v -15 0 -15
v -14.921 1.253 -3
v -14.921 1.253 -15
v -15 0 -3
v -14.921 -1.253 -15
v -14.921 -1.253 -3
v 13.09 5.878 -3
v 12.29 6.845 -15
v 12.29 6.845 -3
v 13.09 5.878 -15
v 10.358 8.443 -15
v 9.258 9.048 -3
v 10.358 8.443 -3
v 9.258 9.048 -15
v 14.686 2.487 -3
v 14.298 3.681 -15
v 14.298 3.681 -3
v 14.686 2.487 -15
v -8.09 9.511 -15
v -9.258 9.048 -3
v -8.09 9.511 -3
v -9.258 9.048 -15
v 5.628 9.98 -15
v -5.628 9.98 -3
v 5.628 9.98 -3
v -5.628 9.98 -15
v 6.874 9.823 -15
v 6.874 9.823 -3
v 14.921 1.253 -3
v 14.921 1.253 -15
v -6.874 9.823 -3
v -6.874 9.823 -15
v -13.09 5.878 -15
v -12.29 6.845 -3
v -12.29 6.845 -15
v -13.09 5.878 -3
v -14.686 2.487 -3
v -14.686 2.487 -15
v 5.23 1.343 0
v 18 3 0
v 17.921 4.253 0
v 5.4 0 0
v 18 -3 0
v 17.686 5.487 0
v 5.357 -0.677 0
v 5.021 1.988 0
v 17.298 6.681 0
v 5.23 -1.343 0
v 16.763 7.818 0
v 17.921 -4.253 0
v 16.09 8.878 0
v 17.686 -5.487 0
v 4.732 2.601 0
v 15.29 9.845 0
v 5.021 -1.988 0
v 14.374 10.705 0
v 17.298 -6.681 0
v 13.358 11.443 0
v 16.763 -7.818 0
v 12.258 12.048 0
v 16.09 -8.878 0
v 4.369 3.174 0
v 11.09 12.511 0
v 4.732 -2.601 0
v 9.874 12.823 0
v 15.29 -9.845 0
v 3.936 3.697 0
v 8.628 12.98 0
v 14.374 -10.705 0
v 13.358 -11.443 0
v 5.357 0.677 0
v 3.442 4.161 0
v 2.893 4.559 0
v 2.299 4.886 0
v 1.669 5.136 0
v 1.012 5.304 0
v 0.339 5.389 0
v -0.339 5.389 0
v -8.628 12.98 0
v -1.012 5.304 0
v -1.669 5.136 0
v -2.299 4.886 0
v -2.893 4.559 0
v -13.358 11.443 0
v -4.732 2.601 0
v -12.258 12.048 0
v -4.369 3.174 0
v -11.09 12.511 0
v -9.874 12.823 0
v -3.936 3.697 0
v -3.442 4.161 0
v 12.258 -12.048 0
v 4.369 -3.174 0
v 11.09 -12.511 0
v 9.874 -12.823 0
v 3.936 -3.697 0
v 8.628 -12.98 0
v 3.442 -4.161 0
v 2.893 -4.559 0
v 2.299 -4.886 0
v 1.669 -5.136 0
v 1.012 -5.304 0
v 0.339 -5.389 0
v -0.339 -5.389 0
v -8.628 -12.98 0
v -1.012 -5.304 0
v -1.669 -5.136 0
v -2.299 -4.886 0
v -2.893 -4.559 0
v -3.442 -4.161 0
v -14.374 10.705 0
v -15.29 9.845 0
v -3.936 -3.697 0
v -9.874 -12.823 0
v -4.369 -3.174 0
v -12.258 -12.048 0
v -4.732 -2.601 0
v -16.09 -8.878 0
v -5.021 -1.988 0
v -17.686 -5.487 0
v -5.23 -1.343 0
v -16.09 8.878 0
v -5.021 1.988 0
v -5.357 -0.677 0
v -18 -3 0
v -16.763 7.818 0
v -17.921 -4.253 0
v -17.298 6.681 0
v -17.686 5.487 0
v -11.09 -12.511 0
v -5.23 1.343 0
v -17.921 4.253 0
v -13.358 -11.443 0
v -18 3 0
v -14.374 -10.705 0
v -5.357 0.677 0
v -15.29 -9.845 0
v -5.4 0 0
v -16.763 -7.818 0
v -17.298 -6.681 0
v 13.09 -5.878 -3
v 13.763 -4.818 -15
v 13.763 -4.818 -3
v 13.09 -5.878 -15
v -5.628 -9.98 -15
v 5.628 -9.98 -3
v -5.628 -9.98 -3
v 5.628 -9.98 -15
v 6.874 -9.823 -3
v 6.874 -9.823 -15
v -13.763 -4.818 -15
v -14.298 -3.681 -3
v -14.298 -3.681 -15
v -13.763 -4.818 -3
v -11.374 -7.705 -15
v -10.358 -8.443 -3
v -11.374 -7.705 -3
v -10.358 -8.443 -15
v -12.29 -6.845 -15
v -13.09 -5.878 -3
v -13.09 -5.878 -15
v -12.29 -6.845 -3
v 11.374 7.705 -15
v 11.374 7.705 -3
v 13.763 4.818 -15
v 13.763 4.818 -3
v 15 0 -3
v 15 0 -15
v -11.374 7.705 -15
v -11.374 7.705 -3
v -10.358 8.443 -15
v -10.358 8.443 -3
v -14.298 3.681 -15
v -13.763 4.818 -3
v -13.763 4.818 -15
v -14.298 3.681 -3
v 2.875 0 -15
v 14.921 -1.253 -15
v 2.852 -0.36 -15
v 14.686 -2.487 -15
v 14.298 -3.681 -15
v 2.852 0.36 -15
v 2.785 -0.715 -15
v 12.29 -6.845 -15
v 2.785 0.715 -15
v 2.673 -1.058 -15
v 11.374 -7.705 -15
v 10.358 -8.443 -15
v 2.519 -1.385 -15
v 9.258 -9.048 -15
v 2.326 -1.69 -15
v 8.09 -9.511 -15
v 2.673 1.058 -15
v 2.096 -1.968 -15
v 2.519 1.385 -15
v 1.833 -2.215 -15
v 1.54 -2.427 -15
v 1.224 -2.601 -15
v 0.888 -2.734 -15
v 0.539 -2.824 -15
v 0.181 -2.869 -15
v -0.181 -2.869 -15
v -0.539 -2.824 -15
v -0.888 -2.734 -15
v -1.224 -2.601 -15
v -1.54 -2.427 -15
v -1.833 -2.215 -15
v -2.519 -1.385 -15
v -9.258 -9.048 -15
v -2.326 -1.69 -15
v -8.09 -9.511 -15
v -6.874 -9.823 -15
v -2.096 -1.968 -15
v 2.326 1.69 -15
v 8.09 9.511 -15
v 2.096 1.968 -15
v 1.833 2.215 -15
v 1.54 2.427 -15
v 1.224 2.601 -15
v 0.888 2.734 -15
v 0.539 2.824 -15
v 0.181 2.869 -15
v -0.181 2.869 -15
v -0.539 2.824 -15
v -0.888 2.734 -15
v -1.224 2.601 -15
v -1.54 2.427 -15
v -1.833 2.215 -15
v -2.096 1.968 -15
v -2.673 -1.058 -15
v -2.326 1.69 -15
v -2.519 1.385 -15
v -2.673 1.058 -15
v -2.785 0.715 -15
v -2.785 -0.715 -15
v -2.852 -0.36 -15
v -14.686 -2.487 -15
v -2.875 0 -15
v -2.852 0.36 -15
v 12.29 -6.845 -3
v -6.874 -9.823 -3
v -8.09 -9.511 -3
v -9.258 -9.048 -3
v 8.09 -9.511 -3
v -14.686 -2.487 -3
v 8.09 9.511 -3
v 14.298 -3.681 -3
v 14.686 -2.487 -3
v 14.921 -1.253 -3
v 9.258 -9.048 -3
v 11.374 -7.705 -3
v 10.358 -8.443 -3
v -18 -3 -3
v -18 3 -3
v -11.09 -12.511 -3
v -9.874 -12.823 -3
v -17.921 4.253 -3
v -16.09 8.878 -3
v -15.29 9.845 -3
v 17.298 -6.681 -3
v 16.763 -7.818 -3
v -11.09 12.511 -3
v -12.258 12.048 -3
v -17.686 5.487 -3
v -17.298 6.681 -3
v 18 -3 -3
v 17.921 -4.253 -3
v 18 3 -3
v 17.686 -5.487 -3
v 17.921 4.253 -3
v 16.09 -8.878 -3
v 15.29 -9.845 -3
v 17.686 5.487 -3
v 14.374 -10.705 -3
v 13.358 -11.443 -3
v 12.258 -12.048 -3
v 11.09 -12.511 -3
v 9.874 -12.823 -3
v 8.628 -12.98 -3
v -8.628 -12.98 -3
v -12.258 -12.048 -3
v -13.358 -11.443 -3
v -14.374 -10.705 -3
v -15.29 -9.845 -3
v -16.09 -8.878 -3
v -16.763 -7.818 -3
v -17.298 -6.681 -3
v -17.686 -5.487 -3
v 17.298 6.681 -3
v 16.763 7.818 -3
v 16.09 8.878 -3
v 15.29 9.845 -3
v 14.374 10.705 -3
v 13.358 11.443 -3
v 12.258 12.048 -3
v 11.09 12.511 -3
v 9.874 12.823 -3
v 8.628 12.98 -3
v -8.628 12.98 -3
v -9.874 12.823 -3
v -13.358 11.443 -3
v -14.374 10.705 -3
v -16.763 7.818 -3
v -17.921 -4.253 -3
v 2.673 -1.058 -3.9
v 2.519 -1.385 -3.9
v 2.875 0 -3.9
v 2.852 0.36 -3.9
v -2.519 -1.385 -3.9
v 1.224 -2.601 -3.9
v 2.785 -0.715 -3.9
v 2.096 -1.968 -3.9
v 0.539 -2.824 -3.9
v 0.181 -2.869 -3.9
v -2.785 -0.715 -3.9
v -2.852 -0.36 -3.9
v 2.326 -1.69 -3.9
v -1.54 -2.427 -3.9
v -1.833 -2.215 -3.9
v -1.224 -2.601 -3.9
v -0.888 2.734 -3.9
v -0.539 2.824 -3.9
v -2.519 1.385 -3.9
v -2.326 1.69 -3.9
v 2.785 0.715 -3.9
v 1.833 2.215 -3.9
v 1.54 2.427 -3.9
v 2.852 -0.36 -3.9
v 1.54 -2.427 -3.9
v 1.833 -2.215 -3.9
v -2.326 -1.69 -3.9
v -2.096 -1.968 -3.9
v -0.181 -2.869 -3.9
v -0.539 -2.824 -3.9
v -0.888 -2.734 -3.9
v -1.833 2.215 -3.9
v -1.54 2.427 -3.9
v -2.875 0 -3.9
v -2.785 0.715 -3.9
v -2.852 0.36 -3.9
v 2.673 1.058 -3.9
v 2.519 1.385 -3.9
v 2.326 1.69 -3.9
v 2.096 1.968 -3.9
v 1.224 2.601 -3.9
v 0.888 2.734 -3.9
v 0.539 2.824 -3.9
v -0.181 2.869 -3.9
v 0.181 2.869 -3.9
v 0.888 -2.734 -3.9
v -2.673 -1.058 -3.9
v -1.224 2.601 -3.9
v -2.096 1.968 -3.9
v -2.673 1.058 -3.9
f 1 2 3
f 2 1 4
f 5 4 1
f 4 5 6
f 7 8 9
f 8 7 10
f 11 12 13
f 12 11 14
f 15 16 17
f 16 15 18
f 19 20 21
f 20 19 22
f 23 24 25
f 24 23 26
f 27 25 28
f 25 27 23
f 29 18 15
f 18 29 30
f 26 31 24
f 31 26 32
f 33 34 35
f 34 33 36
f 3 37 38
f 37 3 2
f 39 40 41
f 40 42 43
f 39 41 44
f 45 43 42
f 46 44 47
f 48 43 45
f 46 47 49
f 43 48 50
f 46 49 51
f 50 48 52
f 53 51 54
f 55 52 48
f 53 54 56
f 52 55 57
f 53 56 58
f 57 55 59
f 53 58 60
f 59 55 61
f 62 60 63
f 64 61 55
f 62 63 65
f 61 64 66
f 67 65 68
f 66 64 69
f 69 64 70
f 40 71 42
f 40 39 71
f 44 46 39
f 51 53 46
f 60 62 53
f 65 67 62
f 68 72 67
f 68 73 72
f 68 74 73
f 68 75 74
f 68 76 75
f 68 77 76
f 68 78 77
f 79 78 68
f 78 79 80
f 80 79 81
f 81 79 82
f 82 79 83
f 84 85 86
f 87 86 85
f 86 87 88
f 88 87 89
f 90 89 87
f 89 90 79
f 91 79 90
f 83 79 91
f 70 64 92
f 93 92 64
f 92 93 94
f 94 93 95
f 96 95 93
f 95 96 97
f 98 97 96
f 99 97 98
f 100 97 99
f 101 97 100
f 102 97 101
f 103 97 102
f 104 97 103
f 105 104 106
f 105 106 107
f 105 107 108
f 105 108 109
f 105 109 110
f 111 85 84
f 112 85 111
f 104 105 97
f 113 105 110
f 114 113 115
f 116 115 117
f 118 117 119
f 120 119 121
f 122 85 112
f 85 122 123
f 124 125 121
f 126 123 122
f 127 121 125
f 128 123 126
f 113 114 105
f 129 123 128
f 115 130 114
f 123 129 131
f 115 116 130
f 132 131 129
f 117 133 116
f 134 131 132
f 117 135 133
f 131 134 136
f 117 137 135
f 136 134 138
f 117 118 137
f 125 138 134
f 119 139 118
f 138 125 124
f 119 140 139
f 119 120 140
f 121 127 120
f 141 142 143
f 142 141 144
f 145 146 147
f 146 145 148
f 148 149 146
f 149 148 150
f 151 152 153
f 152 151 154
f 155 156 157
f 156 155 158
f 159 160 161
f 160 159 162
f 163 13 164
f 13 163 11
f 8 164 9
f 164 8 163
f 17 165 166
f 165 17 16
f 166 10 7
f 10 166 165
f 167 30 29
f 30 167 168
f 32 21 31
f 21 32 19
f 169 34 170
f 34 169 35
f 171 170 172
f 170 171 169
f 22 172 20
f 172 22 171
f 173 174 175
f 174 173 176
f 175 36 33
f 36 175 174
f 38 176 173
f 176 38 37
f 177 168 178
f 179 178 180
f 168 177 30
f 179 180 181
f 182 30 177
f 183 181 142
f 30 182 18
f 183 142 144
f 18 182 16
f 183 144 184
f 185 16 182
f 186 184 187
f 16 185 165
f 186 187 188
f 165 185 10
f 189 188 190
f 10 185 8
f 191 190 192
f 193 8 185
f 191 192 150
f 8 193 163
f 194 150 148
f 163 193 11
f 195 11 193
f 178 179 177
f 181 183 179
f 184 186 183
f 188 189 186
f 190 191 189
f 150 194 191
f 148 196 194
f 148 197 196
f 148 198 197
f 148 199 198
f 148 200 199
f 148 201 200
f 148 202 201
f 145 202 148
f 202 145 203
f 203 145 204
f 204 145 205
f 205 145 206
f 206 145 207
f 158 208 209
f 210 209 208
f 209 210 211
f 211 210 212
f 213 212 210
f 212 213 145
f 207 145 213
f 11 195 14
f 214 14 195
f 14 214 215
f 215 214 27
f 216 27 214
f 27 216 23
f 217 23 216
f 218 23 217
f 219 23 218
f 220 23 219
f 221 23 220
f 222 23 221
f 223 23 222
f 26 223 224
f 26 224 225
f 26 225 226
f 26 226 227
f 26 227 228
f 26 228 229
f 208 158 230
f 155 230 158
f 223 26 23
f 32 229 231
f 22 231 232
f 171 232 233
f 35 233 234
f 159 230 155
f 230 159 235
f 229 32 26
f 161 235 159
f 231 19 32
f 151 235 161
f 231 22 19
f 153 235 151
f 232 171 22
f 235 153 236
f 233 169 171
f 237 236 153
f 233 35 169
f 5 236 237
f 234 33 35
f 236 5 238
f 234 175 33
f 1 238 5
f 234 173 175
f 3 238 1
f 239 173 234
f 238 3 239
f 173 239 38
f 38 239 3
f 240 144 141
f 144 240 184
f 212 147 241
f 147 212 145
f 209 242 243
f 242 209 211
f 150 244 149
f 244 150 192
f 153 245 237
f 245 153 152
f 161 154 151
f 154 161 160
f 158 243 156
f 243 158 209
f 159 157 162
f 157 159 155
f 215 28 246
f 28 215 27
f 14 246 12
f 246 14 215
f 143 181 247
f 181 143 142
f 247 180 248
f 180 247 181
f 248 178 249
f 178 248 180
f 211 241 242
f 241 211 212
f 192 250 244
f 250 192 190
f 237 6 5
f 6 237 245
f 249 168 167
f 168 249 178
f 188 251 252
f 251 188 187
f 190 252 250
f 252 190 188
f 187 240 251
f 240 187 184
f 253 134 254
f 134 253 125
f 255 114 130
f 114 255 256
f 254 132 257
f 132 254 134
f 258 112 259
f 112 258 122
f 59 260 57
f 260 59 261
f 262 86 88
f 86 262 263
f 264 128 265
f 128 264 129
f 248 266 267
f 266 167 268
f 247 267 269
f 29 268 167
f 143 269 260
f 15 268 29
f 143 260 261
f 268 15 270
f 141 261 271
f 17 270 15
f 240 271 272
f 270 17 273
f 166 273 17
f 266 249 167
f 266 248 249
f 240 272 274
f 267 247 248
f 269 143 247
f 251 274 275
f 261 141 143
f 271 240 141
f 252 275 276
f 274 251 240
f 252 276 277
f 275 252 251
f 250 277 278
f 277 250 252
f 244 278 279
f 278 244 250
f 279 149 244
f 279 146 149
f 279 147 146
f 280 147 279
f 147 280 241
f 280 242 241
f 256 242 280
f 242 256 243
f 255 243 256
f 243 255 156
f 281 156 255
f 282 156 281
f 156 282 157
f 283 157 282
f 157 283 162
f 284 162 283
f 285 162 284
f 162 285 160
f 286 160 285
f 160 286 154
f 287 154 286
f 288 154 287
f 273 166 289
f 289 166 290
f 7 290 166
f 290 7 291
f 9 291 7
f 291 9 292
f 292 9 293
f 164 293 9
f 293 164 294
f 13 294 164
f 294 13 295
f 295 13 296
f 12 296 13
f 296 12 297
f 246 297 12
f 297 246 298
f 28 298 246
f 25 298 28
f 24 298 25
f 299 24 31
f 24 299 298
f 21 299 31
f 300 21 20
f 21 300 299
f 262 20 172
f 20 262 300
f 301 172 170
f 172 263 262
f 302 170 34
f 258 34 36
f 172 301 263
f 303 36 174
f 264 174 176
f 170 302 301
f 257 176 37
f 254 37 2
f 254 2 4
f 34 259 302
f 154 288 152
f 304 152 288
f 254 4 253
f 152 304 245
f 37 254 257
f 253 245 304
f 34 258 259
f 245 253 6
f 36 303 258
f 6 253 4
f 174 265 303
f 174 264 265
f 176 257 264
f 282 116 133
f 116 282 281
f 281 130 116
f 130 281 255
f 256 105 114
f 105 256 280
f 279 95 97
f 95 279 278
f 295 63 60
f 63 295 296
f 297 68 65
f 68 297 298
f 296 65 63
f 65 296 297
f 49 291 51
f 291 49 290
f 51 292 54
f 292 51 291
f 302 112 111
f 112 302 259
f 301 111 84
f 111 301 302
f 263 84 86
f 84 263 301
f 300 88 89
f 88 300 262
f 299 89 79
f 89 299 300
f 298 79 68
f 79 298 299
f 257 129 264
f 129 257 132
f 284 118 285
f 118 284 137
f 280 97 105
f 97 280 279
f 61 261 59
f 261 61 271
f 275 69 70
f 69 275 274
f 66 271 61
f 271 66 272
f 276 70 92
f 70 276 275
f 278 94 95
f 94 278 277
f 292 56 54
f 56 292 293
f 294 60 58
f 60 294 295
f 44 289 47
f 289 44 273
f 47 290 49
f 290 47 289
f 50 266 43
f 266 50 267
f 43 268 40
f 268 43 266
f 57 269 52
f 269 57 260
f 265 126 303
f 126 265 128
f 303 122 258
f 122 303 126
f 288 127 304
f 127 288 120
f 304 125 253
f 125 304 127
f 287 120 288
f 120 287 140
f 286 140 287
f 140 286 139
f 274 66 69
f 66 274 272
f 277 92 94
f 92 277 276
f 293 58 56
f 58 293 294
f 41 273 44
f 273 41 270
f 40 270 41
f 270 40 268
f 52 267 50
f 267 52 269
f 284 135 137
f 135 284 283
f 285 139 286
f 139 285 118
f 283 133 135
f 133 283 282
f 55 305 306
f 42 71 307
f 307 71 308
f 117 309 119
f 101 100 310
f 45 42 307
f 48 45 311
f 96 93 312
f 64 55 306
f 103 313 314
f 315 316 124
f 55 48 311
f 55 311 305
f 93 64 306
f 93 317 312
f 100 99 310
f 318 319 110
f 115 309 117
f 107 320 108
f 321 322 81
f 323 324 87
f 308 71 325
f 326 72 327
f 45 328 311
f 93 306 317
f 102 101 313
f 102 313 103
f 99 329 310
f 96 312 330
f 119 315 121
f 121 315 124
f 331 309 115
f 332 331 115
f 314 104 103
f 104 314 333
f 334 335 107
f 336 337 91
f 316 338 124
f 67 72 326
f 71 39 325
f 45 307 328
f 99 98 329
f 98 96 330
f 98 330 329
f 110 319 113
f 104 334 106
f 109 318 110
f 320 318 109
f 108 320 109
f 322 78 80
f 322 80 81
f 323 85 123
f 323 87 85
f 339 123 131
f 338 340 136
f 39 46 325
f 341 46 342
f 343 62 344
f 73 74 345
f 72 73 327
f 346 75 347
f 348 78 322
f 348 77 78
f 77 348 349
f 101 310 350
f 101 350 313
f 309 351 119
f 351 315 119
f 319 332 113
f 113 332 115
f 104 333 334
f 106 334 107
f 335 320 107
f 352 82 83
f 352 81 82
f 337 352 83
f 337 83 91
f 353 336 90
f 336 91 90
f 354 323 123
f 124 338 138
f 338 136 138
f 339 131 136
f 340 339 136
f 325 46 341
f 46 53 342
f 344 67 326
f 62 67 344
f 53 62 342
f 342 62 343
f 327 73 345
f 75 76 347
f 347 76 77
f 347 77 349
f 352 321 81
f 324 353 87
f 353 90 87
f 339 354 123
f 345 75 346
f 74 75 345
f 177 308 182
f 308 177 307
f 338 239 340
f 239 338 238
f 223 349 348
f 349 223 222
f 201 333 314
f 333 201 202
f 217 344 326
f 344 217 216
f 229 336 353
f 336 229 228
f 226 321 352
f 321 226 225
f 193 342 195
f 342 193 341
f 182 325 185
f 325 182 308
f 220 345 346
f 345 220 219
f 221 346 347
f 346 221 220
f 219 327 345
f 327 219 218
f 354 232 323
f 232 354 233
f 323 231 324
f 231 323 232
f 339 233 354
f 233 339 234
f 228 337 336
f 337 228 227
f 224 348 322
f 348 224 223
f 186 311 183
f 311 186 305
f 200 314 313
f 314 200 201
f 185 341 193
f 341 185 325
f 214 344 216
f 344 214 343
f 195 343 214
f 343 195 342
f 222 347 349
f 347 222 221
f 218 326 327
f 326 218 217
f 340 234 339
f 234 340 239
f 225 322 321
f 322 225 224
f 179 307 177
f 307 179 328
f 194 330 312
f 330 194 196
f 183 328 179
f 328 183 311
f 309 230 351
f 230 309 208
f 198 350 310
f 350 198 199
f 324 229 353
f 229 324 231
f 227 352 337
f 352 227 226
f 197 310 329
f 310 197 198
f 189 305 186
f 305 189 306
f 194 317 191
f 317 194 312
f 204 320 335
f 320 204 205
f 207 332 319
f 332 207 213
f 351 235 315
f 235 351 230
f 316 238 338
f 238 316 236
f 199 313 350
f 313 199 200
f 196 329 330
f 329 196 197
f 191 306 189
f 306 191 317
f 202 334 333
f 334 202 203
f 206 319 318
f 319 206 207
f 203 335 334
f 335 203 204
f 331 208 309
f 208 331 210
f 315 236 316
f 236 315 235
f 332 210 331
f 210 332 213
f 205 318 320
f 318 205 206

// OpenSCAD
$fn = 50;


difference() {
	union() {
		translate(v = [0, 0, -15]) {
			hull() {
				translate(v = [-5.0000000000, 0.0000000000, 0]) {
					cylinder(h = 15, r = 10.0000000000);
				}
				translate(v = [5.0000000000, 0.0000000000, 0]) {
					cylinder(h = 15, r = 10.0000000000);
				}
				translate(v = [-5.0000000000, -0.0000000000, 0]) {
					cylinder(h = 15, r = 10.0000000000);
				}
				translate(v = [5.0000000000, -0.0000000000, 0]) {
					cylinder(h = 15, r = 10.0000000000);
				}
			}
		}
		translate(v = [0, 0, -3]) {
			hull() {
				translate(v = [-8.0000000000, 3.0000000000, 0]) {
					cylinder(h = 3, r = 10.0000000000);
				}
				translate(v = [8.0000000000, 3.0000000000, 0]) {
					cylinder(h = 3, r = 10.0000000000);
				}
				translate(v = [-8.0000000000, -3.0000000000, 0]) {
					cylinder(h = 3, r = 10.0000000000);
				}
				translate(v = [8.0000000000, -3.0000000000, 0]) {
					cylinder(h = 3, r = 10.0000000000);
				}
			}
		}
	}
	union() {
		translate(v = [0, 0, 0]) {
			rotate(a = [0, 0, 0]) {
				difference() {
					union() {
						#translate(v = [0, 0, -15.0000000000]) {
							cylinder(h = 15, r = 2.6000000000);
						}
						#translate(v = [0, 0, -3.9000000000]) {
							cylinder(h = 3.9000000000, r1 = 2.8750000000, r2 = 5.4000000000);
						}
						#translate(v = [0, 0, -15.0000000000]) {
							cylinder(h = 15, r = 2.8750000000);
						}
						#translate(v = [0, 0, -15.0000000000]) {
							cylinder(h = 15, r = 2.6000000000);
						}
					}
					union();
				}
			}
		}
	}
}
